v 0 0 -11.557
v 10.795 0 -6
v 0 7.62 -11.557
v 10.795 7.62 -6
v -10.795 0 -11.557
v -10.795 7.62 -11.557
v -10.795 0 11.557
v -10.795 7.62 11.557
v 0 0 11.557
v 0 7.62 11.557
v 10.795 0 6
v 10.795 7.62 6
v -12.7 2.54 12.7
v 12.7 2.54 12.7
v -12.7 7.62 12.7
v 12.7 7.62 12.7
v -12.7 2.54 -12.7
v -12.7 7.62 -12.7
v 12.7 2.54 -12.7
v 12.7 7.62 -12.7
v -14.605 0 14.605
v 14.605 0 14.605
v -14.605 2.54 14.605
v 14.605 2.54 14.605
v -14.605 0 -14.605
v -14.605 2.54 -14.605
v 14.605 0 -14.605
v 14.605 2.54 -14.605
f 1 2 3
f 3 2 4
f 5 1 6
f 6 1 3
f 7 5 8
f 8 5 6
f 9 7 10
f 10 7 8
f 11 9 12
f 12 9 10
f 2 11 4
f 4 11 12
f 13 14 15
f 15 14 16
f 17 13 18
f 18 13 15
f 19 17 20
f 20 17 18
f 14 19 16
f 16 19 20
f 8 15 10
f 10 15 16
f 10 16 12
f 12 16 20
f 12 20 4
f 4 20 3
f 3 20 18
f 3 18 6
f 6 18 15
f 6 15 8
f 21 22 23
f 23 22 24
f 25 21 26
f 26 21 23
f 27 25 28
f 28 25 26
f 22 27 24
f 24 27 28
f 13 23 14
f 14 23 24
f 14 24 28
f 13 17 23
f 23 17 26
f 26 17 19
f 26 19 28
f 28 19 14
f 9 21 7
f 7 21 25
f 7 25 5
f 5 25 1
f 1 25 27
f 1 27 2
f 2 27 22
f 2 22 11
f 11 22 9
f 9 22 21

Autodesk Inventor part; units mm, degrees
ref_plane "YZ Plane" through (0, 0, 0) normal (1, 0, 0) x (0, 1, 0)
ref_plane "XZ Plane" through (0, 0, 0) normal (0, 1, 0) x (-1, 0, 0)
ref_plane "XY Plane" through (0, 0, 0) normal (0, 0, 1) x (1, 0, 0)
sketch "Sketch1" plane through (0, 0, 0) normal (0, 1, 0) x (-1, 0, 0)
  line L0 (14.605, 14.605) -> (-14.605, 14.605)
  line L1 (-14.605, 14.605) -> (-14.605, -14.605)
  line L2 (-14.605, -14.605) -> (14.605, -14.605)
  line L3 (14.605, -14.605) -> (14.605, 14.605)
  point P0 (0, 0)
  point P1 (14.605, 0)
  point P2 (0, -14.605)
  dimension "d0" = 29.21
  dimension "d1" = 29.21
extrude "Extrusion1" add sketch "Sketch1" along normal blind 2.54
sketch "Sketch2" plane through (0, 2.54, 0) normal (0, 1, 0) x (1, 0, 0)
  line L0 (-12.7, -12.7) -> (12.7, -12.7)
  line L1 (12.7, -12.7) -> (12.7, 12.7)
  line L2 (12.7, 12.7) -> (-12.7, 12.7)
  line L3 (-12.7, 12.7) -> (-12.7, -12.7)
  point P0 (0, 0)
  point P1 (0, 12.7)
  point P2 (-12.7, 0)
  dimension "d4" = 25.4
  dimension "d5" = 25.4
extrude "Extrusion2" add sketch "Sketch2" along normal blind 5.08
sketch "Sketch3" plane through (0, 7.62, 0) normal (0, 1, 0) x (1, 0, 0)
  line L0 (0, 0) -> (0, 11.557)
  line L1 (0, 11.557) -> (0, -11.557)
  line L2 (0, -11.557) -> (0, -11.0469)
  line L3 (0, 0) -> (-10.795, 0)
  line L4 (-10.795, 0) -> (10.795, 0)
  line L5 (0, -11.557) -> (-10.795, -11.557)
  line L6 (-10.795, -11.557) -> (-10.795, 11.557)
  line L7 (-10.795, 11.557) -> (0, 11.557)
  line L8 (10.795, 0) -> (10.795, 6)
  line L9 (10.795, 6) -> (10.795, -6)
  line L10 (10.795, -6) -> (0, -11.557)
  line L11 (10.795, 6) -> (0, 11.557)
  dimension "d8" = 11.557
  dimension "d9" = 23.114
  dimension "d10" = 10.795
  dimension "d11" = 21.59
  dimension "d12" = 6
  dimension "d13" = 12
extrude "Extrusion3" cut sketch "Sketch3" against normal blind 25.4
properties part number "Adapter_3DPrint"
